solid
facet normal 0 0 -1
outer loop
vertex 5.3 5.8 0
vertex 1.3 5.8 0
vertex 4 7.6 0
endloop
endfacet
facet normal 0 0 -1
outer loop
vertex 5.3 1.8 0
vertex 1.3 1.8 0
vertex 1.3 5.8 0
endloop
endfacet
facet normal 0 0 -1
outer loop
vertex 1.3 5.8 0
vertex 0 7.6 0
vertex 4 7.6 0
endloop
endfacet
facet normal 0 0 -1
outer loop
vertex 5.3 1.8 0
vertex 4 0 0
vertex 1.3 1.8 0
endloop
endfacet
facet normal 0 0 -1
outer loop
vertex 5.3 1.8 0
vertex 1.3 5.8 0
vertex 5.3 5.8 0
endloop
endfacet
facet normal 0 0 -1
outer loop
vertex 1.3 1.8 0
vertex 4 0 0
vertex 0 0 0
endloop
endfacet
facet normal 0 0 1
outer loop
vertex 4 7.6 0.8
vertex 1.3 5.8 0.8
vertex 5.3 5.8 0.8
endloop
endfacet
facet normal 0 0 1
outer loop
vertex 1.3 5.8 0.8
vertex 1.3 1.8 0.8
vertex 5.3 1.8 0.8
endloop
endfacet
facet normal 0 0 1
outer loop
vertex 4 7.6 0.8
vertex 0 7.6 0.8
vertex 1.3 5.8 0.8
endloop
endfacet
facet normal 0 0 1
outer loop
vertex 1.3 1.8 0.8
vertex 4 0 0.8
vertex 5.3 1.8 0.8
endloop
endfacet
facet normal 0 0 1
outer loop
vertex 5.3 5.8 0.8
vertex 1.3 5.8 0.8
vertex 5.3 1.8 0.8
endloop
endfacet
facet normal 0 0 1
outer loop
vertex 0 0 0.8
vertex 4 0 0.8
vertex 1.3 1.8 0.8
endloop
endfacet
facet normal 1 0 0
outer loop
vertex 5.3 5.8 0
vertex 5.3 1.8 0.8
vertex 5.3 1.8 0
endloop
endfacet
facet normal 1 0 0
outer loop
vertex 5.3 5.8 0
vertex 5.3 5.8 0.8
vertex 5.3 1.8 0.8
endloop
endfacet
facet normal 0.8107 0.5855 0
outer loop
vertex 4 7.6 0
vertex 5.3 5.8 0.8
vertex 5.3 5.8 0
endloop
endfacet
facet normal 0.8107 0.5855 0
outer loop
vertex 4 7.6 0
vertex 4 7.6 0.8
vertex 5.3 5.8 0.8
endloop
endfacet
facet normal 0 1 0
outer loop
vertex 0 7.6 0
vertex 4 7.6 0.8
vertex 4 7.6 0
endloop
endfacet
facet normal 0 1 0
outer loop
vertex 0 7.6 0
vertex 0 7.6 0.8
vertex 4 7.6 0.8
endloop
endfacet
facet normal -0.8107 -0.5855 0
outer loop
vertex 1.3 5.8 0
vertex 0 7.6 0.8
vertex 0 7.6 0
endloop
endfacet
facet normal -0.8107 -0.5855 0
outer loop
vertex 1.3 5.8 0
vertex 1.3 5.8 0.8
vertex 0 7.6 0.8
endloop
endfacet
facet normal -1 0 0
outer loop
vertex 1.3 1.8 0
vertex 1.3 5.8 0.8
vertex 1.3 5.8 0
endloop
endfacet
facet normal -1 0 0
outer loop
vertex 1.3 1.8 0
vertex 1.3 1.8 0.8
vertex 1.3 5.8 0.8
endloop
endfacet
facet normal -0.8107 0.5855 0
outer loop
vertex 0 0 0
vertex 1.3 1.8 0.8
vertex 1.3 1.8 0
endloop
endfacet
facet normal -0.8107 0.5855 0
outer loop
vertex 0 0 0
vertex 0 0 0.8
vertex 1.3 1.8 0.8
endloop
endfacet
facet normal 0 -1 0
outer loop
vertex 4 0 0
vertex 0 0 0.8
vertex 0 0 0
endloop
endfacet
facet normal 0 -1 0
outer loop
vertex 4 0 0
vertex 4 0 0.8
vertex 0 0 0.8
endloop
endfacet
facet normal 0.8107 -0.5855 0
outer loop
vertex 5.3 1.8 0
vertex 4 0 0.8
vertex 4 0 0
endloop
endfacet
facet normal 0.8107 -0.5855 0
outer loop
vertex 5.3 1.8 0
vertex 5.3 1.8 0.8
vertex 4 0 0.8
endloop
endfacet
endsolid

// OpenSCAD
module segment(w,h,e) {
    a = 1.3;
    b = 1.8;
    linear_extrude(e)
        polygon([
            [0, 0],
            [w, 0],
            [w+a, b],
            [w+a, h-b],
            [w, h],
            [0, h],
            [a, h-b],
            [a, b],
        ]);
}

segment(4.0, 8.8-2*0.6, 0.8);
